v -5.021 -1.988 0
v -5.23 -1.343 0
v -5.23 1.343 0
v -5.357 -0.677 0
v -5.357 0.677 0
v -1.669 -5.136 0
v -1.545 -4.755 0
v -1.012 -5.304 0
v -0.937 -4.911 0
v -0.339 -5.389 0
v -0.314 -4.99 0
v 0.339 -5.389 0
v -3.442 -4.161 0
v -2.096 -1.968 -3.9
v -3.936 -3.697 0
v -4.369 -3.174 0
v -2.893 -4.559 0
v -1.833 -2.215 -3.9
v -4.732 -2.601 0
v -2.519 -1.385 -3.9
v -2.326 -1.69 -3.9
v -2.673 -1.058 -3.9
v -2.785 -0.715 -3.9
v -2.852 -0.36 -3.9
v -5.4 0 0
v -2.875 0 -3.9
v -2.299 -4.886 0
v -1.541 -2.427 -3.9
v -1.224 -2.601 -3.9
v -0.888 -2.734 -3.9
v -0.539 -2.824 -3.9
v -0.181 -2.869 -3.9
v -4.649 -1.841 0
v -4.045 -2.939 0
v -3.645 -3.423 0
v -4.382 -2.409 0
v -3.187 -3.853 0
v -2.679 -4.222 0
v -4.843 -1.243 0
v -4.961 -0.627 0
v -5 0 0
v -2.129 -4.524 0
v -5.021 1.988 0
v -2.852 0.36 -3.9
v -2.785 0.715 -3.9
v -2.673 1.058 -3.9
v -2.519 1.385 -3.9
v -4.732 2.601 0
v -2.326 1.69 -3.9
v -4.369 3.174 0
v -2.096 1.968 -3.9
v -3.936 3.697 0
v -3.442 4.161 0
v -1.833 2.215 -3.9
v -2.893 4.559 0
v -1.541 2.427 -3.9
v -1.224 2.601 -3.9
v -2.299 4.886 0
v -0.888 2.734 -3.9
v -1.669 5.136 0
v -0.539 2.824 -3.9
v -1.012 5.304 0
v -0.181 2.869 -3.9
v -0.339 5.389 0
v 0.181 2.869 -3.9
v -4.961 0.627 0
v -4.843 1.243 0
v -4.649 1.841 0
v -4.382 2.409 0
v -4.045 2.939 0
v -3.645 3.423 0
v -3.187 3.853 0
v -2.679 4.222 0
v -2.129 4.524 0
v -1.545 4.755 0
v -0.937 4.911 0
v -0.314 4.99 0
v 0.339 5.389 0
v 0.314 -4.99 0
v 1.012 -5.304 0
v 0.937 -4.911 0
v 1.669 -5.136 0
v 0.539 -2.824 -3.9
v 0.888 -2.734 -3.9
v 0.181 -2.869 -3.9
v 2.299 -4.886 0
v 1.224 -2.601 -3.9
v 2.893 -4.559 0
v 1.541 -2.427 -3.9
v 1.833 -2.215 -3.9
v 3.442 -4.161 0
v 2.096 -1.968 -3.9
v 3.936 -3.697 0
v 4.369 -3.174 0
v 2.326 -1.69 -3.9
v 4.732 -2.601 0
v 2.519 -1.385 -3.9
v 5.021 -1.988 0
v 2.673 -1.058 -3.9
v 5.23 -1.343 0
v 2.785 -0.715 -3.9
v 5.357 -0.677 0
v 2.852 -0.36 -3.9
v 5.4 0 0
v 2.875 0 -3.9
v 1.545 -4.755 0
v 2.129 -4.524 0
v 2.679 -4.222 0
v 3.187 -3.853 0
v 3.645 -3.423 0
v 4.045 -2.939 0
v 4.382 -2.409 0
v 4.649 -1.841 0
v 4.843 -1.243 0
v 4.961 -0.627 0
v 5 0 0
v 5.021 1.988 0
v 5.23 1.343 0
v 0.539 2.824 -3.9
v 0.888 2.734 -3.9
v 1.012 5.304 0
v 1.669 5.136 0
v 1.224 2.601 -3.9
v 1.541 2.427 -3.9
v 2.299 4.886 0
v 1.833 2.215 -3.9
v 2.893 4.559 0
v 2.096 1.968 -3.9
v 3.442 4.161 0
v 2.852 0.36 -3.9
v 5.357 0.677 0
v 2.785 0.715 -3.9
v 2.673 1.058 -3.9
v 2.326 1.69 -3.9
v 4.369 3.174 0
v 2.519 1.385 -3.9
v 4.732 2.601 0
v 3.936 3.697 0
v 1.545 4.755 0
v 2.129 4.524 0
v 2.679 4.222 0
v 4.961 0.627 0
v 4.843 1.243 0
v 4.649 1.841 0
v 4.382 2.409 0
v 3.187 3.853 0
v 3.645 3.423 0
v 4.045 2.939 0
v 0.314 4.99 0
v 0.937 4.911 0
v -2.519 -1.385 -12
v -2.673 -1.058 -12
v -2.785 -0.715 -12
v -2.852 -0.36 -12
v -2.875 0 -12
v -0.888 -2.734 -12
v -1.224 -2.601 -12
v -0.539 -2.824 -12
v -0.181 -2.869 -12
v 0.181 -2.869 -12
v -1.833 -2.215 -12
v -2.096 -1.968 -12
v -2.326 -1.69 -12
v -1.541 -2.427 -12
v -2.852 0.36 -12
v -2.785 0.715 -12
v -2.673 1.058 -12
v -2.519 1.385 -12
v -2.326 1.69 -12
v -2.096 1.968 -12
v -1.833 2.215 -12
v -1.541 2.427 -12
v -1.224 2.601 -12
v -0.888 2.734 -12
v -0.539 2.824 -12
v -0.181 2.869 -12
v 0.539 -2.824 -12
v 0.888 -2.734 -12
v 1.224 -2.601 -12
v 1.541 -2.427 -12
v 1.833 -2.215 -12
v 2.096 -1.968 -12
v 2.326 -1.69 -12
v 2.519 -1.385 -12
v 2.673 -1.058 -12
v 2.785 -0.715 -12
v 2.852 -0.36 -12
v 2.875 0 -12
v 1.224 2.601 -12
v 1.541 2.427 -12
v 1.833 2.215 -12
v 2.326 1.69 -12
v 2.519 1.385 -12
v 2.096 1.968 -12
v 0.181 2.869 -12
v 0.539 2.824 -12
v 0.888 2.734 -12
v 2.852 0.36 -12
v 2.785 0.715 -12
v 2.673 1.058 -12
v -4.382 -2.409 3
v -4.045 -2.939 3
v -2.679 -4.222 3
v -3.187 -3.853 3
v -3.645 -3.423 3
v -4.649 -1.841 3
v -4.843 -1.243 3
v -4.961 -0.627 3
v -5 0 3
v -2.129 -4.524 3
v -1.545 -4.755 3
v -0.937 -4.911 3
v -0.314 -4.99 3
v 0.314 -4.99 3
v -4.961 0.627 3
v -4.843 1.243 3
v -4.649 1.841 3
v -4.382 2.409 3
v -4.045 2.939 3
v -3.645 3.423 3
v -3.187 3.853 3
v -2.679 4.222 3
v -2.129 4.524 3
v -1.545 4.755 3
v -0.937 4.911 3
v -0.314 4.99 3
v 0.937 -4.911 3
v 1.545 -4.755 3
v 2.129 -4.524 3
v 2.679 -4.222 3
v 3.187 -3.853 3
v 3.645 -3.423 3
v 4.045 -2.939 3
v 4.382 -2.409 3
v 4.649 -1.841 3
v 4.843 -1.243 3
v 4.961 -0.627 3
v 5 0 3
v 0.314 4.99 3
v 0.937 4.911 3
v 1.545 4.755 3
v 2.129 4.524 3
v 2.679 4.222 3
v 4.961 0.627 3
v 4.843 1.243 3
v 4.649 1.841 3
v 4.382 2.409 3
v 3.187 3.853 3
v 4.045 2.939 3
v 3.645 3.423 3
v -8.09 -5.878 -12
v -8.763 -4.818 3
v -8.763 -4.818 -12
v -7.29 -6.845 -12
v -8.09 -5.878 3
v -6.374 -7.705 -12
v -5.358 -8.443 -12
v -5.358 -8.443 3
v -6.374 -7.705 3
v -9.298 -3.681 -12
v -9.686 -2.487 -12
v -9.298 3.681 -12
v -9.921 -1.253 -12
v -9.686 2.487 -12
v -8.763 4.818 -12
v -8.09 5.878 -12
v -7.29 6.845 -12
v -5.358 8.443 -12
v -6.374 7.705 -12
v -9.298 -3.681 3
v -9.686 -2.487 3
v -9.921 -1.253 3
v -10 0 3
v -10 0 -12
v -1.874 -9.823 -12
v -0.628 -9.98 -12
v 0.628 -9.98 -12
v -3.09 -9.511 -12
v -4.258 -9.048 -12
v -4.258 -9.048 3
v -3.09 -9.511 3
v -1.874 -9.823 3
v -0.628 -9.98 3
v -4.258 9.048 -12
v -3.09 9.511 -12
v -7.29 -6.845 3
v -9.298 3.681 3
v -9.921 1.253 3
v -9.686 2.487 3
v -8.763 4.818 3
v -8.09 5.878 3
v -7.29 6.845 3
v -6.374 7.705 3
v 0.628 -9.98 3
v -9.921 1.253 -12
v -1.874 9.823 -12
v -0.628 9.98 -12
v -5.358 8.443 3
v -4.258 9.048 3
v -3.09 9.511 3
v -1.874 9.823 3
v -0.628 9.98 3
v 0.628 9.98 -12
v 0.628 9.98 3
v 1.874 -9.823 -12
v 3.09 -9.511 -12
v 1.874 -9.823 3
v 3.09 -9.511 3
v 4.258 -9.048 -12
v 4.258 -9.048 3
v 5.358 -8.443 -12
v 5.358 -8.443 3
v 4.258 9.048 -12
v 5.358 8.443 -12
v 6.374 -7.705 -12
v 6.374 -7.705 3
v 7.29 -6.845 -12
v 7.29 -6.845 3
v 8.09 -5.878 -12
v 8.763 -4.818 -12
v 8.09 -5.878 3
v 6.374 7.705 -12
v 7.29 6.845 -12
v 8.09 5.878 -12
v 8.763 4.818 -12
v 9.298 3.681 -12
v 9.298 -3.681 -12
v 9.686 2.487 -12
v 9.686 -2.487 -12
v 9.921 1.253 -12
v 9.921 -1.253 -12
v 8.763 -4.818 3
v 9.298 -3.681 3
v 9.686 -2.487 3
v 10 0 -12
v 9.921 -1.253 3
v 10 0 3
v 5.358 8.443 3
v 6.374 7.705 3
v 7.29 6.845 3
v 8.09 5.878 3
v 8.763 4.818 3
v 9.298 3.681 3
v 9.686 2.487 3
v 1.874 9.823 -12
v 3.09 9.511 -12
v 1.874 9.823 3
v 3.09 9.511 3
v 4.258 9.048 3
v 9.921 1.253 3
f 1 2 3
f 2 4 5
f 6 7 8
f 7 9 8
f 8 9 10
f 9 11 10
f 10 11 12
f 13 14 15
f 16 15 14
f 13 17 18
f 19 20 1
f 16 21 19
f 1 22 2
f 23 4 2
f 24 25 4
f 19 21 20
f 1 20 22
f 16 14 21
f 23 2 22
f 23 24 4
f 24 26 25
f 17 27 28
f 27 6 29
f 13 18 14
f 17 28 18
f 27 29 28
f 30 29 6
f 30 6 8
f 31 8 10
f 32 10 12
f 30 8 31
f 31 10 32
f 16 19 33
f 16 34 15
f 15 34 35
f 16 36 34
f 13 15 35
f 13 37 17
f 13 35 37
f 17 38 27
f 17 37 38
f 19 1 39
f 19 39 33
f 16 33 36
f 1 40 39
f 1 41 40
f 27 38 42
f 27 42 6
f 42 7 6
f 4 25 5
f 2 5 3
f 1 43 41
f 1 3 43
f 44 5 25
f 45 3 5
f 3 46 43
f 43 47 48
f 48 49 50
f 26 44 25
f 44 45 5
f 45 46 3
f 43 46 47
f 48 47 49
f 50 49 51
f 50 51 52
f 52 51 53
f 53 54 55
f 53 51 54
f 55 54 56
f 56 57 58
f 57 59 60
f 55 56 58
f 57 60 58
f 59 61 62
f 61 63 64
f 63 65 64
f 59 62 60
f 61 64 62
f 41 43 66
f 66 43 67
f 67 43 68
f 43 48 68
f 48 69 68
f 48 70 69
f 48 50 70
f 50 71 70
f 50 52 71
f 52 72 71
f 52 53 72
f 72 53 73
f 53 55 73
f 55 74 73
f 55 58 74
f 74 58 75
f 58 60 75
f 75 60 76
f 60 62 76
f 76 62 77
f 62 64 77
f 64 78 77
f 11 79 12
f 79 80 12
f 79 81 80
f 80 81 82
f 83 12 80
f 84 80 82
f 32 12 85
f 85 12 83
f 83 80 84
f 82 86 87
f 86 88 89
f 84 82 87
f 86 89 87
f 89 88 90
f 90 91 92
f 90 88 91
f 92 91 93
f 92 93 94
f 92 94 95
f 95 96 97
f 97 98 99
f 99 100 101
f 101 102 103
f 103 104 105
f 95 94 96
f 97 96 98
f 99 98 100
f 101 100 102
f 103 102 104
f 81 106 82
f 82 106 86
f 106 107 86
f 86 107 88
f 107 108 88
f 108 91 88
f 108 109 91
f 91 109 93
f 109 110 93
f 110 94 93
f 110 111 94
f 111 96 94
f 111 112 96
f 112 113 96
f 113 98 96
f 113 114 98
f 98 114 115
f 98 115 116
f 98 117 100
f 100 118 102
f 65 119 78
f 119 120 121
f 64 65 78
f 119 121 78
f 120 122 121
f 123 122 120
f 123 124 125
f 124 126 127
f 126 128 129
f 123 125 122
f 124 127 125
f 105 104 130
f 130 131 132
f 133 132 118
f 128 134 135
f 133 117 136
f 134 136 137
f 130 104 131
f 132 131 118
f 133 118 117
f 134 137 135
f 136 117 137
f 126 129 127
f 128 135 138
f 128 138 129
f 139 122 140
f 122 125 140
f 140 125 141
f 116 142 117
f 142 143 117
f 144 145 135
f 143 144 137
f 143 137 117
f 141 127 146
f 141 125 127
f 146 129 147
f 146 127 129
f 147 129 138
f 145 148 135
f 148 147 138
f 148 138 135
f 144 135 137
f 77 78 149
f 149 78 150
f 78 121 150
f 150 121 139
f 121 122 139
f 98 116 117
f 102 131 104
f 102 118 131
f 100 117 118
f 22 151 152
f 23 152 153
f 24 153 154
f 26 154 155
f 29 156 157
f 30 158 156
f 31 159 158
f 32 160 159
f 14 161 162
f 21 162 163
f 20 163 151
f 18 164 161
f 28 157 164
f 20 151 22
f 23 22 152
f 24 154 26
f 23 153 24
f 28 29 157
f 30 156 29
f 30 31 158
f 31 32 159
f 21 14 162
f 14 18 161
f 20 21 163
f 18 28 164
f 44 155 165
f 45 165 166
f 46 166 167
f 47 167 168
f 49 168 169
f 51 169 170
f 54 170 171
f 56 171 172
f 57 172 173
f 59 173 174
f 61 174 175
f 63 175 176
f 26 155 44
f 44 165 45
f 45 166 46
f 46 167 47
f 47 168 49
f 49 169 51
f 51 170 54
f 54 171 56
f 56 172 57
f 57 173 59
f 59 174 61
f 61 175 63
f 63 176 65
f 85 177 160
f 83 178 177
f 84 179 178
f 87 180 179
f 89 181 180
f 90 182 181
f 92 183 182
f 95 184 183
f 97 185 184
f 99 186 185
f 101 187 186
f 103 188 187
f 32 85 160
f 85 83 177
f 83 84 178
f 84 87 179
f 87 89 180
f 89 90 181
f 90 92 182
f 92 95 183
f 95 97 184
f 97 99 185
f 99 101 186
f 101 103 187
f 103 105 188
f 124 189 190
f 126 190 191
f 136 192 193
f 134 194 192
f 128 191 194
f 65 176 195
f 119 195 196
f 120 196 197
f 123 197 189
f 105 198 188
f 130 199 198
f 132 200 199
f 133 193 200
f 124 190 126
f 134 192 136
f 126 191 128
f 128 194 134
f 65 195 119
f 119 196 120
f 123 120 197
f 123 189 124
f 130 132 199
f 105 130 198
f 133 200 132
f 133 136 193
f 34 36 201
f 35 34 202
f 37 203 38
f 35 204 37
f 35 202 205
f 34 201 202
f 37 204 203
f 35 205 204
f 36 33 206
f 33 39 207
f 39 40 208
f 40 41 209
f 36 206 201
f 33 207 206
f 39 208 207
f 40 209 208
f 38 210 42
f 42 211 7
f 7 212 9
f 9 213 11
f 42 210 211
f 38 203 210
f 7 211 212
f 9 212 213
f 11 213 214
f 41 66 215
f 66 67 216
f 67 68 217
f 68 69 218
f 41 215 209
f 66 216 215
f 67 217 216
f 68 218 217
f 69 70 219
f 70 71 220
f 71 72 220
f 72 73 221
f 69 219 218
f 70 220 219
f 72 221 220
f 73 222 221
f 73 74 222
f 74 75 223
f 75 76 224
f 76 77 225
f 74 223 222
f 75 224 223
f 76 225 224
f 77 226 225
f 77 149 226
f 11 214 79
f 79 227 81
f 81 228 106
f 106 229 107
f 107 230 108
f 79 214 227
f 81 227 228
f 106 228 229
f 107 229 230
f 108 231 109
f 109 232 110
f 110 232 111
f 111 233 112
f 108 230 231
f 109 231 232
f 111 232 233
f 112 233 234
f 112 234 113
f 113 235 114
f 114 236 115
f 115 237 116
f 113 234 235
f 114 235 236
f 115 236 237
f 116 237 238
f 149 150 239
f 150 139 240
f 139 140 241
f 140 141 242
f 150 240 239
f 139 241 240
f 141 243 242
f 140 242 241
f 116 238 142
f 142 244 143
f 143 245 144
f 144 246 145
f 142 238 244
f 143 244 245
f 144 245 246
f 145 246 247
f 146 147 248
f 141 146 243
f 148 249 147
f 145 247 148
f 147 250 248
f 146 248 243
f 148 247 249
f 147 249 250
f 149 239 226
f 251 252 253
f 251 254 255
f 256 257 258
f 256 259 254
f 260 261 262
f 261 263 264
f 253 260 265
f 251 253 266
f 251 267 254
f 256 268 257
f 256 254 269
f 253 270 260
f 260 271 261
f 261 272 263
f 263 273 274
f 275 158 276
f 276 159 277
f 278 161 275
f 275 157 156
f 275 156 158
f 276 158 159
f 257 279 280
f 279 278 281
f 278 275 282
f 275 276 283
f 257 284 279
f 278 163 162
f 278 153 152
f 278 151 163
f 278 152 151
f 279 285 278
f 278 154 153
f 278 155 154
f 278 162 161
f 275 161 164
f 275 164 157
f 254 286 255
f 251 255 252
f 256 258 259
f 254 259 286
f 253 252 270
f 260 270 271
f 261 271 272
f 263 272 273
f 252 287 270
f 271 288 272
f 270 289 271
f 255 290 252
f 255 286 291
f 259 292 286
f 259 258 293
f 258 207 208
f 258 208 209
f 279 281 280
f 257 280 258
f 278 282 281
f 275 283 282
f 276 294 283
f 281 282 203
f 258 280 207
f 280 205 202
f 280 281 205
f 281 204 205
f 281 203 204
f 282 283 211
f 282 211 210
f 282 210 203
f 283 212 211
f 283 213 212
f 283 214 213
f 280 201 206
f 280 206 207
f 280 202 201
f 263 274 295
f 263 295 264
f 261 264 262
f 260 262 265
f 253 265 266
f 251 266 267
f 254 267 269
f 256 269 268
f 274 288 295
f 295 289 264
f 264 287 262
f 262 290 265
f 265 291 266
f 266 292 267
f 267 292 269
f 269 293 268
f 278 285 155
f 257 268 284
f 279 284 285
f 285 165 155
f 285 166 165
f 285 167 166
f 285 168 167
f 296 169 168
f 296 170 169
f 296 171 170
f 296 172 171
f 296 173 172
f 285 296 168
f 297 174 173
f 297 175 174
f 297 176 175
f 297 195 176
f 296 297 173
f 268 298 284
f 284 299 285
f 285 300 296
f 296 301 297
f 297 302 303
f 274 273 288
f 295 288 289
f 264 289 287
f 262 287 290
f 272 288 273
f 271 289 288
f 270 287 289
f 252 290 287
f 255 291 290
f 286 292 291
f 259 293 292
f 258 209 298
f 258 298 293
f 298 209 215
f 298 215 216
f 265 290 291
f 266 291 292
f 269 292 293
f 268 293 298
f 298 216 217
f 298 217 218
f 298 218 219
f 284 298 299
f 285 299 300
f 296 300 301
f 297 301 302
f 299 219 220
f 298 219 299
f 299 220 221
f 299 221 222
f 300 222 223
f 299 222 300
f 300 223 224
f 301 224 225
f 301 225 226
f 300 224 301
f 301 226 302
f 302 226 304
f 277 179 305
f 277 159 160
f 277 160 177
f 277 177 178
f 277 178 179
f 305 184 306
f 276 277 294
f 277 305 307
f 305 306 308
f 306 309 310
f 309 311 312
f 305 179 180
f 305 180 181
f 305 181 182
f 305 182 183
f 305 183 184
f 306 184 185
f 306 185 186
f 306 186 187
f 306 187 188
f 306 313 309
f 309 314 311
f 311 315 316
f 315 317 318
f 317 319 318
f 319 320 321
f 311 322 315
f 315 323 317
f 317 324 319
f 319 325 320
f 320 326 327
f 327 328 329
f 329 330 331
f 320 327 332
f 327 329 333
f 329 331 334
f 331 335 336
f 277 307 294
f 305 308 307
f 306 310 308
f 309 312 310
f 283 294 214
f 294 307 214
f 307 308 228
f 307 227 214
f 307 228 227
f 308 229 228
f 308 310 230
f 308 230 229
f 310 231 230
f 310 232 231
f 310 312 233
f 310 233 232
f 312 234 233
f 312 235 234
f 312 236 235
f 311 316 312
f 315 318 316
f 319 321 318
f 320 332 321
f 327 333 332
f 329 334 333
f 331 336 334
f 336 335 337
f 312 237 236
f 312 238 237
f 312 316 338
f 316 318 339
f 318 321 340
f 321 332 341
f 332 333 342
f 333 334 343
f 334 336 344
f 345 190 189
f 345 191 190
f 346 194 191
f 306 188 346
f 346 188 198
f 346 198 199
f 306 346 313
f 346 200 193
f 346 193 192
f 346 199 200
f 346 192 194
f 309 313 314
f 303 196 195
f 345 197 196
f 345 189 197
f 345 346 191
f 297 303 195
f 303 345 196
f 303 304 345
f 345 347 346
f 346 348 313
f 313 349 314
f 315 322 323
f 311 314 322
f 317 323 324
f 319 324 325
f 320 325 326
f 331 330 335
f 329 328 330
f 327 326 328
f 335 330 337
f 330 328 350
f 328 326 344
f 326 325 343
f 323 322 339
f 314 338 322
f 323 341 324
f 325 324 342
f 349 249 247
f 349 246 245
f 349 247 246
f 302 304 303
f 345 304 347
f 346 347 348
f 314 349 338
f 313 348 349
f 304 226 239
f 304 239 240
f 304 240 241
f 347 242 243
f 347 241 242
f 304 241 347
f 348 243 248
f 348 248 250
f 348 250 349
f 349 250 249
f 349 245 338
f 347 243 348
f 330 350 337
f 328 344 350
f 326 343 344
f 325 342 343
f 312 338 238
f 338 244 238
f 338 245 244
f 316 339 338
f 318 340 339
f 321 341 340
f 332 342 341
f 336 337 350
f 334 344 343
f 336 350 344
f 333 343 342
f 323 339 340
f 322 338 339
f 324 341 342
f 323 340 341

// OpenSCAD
$fn = 50;


difference() {
	union() {
		translate(v = [0, 0, -12.0000000000]) {
			cylinder(h = 15, r = 10.0000000000);
		}
		#translate(v = [0, 0, -15.0000000000]) {
			cylinder(h = 15, r = 2.8750000000);
		}
	}
	union() {
		translate(v = [0, 0, 0]) {
			rotate(a = [0, 0, 0]) {
				difference() {
					union() {
						translate(v = [0, 0, -15.0000000000]) {
							cylinder(h = 15, r = 2.6000000000);
						}
						translate(v = [0, 0, -3.9000000000]) {
							cylinder(h = 3.9000000000, r1 = 2.8750000000, r2 = 5.4000000000);
						}
						translate(v = [0, 0, -15.0000000000]) {
							cylinder(h = 15, r = 2.8750000000);
						}
						translate(v = [0, 0, -15.0000000000]) {
							cylinder(h = 15, r = 2.6000000000);
						}
					}
					union();
				}
			}
		}
		#cylinder(h = 3, r = 5.0000000000);
	}
}
